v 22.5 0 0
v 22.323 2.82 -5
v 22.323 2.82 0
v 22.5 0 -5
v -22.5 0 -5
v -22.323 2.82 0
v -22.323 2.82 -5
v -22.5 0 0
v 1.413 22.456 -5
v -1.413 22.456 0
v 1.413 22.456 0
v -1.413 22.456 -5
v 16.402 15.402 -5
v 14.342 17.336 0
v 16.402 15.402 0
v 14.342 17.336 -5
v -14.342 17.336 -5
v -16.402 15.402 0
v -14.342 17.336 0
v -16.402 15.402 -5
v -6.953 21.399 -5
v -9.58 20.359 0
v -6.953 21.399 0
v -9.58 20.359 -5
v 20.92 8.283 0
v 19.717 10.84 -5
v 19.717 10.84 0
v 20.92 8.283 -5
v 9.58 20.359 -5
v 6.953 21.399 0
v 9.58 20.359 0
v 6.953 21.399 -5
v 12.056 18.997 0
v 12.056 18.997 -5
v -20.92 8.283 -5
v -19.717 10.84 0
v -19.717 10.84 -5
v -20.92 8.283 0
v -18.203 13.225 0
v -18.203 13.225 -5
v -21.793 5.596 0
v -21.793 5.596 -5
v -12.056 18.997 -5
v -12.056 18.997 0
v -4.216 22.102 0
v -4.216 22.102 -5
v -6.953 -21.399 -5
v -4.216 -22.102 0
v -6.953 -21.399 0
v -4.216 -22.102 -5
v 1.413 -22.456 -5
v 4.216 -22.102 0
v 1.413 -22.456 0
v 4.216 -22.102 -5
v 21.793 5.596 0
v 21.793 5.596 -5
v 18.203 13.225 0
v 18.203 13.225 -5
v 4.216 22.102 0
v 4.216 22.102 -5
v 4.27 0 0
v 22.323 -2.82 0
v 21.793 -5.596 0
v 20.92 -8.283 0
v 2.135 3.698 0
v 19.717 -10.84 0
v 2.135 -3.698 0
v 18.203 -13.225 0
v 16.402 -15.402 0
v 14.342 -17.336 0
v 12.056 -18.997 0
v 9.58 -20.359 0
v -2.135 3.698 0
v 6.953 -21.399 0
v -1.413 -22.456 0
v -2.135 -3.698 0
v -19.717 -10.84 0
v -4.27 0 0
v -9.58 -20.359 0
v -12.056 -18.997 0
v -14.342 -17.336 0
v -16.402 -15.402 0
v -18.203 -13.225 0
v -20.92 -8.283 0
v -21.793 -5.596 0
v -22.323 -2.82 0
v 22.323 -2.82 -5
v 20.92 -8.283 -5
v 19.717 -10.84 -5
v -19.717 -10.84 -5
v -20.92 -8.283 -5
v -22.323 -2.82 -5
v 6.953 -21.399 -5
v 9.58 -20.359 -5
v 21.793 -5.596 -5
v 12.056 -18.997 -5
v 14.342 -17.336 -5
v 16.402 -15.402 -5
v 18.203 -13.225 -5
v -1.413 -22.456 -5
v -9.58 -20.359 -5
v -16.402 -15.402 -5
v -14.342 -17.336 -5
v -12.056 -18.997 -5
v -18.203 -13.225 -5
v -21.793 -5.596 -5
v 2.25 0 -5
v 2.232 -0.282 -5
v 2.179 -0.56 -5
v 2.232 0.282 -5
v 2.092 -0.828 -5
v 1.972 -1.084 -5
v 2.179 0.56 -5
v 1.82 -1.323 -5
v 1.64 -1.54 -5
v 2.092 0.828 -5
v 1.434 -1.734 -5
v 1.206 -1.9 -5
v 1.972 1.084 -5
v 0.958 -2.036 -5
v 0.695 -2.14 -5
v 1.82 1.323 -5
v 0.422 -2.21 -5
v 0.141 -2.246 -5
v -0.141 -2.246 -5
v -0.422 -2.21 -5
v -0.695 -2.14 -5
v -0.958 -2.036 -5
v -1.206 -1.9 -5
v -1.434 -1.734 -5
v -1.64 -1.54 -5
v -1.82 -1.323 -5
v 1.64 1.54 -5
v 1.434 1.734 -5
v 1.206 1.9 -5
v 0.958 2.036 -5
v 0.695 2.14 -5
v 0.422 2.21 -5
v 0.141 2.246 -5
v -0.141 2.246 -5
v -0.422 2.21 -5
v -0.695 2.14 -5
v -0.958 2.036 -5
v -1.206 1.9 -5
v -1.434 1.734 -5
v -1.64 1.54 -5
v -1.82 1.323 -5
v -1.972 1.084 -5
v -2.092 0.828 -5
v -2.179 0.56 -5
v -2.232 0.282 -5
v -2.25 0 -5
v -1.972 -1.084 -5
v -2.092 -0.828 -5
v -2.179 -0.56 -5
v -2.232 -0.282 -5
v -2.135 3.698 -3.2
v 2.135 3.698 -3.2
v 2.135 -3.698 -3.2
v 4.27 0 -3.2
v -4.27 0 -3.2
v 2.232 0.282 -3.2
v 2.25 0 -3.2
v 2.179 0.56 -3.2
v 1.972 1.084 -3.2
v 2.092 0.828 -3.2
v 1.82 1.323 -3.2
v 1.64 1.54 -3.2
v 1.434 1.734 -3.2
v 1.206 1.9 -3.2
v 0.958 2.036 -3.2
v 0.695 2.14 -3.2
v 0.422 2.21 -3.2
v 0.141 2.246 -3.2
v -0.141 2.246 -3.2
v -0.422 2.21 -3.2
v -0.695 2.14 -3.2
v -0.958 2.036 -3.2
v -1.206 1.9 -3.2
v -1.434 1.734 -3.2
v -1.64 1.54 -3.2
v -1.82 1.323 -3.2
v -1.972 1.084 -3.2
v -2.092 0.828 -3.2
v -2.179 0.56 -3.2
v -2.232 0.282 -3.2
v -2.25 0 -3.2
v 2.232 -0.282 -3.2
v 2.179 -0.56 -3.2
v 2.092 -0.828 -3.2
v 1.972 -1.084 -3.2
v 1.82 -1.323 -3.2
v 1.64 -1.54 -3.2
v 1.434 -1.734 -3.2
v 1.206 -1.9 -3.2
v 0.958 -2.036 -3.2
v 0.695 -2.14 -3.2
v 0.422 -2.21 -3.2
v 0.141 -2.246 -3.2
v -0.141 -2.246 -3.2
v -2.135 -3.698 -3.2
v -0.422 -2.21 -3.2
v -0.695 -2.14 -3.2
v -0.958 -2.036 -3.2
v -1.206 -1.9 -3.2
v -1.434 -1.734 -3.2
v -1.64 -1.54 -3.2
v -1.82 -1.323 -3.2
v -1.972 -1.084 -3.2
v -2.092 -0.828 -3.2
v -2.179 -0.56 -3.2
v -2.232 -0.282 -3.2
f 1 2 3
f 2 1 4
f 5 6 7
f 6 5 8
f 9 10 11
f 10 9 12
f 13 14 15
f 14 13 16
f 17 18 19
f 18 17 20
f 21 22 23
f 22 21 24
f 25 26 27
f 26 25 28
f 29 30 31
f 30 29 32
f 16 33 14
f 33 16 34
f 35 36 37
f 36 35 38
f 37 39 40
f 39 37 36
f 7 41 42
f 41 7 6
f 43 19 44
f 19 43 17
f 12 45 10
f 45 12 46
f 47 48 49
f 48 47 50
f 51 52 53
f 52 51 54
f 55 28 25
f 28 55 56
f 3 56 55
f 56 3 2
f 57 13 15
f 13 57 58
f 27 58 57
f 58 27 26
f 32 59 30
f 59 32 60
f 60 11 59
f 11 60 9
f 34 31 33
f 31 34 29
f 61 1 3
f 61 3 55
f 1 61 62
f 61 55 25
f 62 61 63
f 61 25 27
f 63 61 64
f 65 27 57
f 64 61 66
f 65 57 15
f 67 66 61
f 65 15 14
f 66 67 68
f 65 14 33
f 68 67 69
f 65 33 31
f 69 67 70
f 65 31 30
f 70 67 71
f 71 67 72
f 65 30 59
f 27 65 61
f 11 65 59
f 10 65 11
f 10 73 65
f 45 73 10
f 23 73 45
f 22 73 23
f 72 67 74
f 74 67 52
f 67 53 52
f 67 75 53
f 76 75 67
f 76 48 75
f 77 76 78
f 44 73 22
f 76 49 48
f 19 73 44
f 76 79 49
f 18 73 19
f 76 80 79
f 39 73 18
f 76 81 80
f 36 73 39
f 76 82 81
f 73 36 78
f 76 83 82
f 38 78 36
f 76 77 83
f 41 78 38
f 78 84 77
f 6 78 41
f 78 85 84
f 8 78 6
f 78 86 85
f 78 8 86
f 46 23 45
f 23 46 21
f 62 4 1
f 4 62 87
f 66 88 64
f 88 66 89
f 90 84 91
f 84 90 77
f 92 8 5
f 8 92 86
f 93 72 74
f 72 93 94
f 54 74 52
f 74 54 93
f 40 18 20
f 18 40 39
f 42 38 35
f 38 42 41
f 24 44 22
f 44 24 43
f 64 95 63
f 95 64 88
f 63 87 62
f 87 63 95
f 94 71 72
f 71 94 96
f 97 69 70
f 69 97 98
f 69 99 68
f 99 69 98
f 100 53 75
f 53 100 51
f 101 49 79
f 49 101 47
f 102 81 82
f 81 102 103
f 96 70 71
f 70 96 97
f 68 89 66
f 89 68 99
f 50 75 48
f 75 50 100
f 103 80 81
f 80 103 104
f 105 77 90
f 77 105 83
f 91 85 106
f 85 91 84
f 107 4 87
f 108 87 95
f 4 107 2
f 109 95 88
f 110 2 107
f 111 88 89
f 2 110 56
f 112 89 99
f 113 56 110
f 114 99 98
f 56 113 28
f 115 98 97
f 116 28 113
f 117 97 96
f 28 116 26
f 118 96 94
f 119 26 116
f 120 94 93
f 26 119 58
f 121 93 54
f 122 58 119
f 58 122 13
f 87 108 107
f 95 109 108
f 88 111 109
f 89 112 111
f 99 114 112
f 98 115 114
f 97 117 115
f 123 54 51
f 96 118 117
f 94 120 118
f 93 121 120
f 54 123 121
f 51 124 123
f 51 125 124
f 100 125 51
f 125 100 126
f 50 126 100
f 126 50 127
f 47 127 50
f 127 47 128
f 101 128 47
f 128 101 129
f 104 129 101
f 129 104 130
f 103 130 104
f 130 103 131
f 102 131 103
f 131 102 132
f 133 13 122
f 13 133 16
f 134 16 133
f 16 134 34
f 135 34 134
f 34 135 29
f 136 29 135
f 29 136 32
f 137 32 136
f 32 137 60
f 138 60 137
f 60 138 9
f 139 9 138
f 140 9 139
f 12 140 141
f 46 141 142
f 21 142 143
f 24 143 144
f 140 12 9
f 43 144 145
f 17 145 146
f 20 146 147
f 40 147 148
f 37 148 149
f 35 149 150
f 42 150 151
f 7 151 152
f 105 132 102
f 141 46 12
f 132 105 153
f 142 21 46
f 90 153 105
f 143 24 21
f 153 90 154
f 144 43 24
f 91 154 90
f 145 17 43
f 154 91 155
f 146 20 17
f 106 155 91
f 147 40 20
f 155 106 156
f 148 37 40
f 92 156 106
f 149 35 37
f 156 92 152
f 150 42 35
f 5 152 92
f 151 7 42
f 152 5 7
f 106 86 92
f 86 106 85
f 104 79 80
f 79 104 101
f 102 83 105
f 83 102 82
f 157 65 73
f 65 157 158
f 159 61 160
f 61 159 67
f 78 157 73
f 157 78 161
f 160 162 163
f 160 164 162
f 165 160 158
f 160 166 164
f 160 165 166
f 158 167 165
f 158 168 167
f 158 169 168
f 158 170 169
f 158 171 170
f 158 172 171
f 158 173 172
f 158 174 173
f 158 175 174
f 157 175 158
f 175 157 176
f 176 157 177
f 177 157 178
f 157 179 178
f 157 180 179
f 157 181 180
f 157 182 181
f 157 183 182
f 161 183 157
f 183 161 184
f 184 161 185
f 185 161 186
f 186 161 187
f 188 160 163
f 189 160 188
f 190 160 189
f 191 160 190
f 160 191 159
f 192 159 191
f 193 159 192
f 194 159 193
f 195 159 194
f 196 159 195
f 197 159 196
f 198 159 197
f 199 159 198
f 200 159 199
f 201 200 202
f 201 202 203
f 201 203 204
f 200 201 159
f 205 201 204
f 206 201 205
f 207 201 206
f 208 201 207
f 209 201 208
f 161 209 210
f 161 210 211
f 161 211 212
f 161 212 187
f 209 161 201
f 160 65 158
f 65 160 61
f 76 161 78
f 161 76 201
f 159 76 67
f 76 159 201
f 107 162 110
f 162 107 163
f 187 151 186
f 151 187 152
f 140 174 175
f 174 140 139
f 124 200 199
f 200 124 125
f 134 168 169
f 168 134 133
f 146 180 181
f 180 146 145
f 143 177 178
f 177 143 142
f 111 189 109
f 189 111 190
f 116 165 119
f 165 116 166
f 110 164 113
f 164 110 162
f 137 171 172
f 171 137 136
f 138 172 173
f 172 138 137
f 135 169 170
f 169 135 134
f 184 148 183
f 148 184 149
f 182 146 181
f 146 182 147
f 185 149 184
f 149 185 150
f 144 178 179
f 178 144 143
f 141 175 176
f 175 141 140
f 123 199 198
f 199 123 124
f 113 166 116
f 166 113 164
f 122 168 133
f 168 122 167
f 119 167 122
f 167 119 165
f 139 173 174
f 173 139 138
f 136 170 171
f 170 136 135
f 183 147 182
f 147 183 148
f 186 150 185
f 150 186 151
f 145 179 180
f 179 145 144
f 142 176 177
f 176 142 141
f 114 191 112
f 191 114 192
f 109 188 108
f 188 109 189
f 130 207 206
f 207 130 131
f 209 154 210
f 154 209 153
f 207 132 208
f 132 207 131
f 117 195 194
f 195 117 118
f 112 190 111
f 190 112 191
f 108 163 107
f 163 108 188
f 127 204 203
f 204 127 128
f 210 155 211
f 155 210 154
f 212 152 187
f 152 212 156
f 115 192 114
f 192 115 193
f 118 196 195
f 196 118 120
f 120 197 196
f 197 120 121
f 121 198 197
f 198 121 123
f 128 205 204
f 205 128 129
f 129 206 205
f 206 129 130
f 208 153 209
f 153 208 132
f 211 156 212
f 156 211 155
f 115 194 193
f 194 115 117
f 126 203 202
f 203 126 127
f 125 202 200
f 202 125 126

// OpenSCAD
$fn = 50;


difference() {
	union() {
		translate(v = [0, 0, -5.0000000000]) {
			cylinder(h = 5.0000000000, r = 22.5000000000);
		}
		translate(v = [0, 0, -3.5000000000]) {
			cylinder(h = 3.5000000000, r = 2.8750000000);
		}
	}
	union() {
		translate(v = [0, 0, 0]) {
			rotate(a = [0, 0, 0]) {
				difference() {
					union() {
						translate(v = [0, 0, -3.2000000000]) {
							#linear_extrude(height = 3.2000000000) {
								polygon(points = [[4.2698000000, 0.0000000000], [2.1349000000, 3.6977552691], [-2.1349000000, 3.6977552691], [-4.2698000000, 0.0000000000], [-2.1349000000, -3.6977552691], [2.1349000000, -3.6977552691]]);
							}
						}
					}
					union();
				}
			}
		}
		#translate(v = [0, 0, -100.0000000000]) {
			cylinder(h = 200, r = 2.2500000000);
		}
	}
}
